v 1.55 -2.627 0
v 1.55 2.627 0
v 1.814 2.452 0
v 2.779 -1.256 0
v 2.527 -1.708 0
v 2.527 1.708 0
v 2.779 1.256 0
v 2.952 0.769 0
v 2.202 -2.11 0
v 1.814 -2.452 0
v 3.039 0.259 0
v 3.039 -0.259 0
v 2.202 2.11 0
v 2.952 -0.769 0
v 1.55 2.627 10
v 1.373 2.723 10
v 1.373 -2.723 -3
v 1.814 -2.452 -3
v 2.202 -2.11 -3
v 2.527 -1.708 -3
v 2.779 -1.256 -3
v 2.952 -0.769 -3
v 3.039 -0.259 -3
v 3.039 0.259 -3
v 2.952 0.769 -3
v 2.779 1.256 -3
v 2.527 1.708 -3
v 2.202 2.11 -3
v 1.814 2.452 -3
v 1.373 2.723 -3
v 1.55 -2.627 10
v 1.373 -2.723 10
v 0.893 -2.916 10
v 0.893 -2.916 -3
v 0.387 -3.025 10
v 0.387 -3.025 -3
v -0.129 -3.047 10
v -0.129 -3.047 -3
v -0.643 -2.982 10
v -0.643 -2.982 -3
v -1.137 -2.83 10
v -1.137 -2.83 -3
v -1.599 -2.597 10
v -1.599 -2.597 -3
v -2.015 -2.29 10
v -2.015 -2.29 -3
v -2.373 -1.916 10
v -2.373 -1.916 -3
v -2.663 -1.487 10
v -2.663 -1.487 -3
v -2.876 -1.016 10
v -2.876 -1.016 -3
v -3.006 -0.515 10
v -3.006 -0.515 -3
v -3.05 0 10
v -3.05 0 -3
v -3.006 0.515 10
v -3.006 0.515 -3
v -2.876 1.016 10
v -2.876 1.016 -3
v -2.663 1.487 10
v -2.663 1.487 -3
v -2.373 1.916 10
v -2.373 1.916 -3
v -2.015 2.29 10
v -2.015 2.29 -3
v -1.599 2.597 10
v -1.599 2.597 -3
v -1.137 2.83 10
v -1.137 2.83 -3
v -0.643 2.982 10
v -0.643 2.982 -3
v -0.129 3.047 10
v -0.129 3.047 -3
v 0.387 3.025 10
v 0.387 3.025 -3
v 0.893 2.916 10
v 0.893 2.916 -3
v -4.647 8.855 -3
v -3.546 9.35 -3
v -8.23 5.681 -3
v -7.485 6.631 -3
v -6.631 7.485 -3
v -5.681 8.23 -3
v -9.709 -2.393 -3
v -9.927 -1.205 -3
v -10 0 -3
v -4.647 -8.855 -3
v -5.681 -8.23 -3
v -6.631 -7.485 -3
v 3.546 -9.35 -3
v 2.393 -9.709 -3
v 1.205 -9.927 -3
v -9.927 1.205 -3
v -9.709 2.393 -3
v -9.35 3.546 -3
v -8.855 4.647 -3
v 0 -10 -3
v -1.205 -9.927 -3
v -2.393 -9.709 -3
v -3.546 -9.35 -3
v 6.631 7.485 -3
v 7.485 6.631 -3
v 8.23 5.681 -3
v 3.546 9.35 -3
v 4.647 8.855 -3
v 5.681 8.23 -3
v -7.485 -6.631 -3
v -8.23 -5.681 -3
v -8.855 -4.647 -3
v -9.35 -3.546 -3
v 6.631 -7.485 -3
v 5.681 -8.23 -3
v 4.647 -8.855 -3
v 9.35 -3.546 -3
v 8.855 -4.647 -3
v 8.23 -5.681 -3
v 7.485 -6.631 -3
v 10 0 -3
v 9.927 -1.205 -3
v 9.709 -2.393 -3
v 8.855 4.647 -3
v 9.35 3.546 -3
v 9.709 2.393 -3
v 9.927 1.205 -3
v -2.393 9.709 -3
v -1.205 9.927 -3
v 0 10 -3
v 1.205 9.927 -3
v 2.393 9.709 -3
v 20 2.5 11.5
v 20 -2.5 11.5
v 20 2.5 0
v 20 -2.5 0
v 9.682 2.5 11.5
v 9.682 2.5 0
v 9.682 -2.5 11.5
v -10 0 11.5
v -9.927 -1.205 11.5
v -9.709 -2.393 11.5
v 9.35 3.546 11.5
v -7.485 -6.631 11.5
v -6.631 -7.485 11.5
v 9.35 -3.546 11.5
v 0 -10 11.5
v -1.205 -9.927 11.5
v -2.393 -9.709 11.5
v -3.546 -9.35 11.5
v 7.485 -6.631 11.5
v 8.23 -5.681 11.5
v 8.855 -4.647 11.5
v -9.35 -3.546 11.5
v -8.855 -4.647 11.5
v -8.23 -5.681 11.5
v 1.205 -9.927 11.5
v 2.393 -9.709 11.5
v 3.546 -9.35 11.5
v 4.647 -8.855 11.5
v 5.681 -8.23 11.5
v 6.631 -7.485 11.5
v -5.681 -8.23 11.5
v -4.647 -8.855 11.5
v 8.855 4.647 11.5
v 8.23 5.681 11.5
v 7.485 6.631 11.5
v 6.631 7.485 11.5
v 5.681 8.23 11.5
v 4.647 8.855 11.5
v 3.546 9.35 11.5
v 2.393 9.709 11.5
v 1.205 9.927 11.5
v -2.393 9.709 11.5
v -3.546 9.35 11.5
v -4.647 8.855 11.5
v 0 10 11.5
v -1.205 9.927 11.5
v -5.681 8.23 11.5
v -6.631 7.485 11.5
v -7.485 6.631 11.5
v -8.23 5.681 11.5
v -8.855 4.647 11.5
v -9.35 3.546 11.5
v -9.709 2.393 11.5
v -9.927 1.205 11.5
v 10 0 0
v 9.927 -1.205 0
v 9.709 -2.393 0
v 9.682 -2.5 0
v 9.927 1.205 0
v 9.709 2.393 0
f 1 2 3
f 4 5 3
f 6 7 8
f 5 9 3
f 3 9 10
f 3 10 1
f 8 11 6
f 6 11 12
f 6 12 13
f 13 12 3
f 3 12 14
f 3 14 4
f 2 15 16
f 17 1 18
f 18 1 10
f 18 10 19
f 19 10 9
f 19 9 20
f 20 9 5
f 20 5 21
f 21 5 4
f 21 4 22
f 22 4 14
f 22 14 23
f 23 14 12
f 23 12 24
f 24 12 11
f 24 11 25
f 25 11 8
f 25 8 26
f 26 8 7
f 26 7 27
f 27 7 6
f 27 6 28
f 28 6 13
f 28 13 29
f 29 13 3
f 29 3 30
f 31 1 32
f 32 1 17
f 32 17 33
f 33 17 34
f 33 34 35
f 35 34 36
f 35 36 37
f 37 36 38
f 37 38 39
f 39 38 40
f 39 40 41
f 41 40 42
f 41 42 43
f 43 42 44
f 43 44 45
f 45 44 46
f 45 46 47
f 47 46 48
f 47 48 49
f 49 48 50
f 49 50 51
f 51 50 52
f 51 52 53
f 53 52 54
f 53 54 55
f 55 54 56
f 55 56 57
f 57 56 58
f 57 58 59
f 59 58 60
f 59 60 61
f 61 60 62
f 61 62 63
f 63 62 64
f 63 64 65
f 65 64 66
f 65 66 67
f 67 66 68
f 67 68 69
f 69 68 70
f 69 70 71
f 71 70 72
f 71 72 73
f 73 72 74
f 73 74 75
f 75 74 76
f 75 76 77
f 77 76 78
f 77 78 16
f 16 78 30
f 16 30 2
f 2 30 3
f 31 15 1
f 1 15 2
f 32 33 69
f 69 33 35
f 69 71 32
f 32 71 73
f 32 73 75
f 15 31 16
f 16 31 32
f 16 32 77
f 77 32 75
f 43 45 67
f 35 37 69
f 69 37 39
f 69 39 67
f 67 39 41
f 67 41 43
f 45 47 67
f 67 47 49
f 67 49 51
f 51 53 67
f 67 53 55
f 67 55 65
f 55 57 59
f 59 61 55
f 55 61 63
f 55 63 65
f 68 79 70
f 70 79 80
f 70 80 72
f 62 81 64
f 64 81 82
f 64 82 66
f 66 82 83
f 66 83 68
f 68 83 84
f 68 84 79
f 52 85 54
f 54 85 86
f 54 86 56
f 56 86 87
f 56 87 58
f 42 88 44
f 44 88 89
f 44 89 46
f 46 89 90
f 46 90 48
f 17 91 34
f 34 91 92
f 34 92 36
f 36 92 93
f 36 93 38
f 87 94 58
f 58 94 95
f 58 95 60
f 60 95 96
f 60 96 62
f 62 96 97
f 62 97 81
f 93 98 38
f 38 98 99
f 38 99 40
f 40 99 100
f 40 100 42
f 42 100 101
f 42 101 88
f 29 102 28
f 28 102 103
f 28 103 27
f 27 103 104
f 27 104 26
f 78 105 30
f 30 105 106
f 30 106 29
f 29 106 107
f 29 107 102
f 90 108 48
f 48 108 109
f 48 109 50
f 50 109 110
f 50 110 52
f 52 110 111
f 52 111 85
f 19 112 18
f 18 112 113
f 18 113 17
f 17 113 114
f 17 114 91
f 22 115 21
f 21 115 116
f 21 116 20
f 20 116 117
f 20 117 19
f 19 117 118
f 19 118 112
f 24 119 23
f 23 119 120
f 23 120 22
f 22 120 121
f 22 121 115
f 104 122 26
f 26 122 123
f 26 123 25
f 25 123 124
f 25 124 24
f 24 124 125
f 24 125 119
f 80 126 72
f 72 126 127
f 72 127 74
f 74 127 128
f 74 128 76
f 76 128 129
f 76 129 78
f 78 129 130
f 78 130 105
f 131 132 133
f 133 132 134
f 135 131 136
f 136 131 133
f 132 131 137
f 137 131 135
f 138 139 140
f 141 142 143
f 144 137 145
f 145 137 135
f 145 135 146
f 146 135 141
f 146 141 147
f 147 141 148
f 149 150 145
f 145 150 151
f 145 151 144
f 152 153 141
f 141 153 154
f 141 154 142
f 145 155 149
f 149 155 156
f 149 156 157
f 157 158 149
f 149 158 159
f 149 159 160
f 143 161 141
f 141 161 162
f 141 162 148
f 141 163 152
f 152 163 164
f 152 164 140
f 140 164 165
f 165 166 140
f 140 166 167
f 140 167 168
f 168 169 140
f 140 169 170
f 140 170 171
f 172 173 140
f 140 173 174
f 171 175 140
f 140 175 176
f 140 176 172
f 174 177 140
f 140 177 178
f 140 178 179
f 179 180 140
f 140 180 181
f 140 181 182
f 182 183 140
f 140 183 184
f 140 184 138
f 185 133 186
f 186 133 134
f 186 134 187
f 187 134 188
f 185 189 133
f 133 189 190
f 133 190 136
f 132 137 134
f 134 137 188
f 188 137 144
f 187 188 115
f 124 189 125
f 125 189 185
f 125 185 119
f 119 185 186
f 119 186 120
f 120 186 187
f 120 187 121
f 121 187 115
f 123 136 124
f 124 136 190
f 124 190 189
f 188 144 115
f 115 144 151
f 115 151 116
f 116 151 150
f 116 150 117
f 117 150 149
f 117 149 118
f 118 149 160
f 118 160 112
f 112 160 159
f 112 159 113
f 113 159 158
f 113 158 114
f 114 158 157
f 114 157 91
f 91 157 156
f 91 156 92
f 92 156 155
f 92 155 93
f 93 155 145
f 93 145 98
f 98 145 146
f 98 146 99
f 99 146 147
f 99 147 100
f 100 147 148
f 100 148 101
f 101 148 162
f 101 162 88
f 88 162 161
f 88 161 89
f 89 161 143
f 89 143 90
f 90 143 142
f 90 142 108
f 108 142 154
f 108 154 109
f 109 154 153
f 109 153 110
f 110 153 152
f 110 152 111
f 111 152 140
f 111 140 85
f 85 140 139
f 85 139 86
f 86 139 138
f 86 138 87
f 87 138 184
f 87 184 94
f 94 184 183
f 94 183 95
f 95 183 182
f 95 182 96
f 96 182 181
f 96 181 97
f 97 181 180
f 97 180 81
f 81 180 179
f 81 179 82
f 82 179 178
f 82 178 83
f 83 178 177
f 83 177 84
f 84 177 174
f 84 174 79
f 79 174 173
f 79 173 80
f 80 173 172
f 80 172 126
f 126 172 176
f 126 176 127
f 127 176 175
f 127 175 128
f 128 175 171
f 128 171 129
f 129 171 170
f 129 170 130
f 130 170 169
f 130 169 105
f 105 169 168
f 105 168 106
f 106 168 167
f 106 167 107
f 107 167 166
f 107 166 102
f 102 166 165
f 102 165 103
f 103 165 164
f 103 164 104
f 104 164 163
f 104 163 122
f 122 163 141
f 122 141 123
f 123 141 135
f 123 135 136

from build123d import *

# Parameters (mm, degrees)
DODANIE_WYCI_GNI_CIE3_DEPTH = 11.5
WYTNIJ_WYCI_GNI_CIE1_DEPTH  = 10
DODANIE_WYCI_GNI_CIE4_START = 3
DODANIE_WYCI_GNI_CIE4_DEPTH = 3


with BuildPart() as part:
    # Szkic1 → Dodanie-wyci_gni_cie3 (new body)
    with BuildSketch(Plane.XY):
        with BuildLine():
            Line((20, 2.5), (9.682458366, 2.5))
            ThreePointArc((9.682458366, 2.5), (-10, 0), (9.682458366, -2.5))
            Line((9.682458366, -2.5), (20, -2.5))
            Line((20, -2.5), (20, 2.5))
        make_face()
    extrude(amount=DODANIE_WYCI_GNI_CIE3_DEPTH)

    # Szkic1_6 → Wytnij-wyci_gni_cie1 (cut)
    with BuildSketch(Plane.XY):
        with BuildLine():
            Line((1.55, -2.626785107), (1.55, 2.626785107))
            ThreePointArc((1.55, 2.626785107), (-3.05, 0), (1.55, -2.626785107))
        make_face()
    extrude(amount=WYTNIJ_WYCI_GNI_CIE1_DEPTH, mode=Mode.SUBTRACT)

    # Szkic2 → Dodanie-wyci_gni_cie4 (add)
    with BuildSketch(Plane(origin=(0, 0, 0), x_dir=(-1, 0, 0), z_dir=(0, 0, -1)).offset(DODANIE_WYCI_GNI_CIE4_START)):
        with BuildLine():
            ThreePointArc((-9.682458366, -2.5), (1.260042925, -9.920296963), (10, 0))
            ThreePointArc((10, 0), (1.260042925, 9.920296963), (-9.682458366, 2.5))
            ThreePointArc((-9.682458366, 2.5), (-10, 0), (-9.682458366, -2.5))
        make_face()
        with BuildLine():
            ThreePointArc((-1.55, -2.626785107), (-3.05, 0), (-1.55, 2.626785107))
            ThreePointArc((-1.55, 2.626785107), (1.512448346, 2.648584528), (3.05, 0))
            ThreePointArc((3.05, 0), (1.512448346, -2.648584528), (-1.55, -2.626785107))
        make_face(mode=Mode.SUBTRACT)
    extrude(amount=-DODANIE_WYCI_GNI_CIE4_DEPTH)


solid = part.part
